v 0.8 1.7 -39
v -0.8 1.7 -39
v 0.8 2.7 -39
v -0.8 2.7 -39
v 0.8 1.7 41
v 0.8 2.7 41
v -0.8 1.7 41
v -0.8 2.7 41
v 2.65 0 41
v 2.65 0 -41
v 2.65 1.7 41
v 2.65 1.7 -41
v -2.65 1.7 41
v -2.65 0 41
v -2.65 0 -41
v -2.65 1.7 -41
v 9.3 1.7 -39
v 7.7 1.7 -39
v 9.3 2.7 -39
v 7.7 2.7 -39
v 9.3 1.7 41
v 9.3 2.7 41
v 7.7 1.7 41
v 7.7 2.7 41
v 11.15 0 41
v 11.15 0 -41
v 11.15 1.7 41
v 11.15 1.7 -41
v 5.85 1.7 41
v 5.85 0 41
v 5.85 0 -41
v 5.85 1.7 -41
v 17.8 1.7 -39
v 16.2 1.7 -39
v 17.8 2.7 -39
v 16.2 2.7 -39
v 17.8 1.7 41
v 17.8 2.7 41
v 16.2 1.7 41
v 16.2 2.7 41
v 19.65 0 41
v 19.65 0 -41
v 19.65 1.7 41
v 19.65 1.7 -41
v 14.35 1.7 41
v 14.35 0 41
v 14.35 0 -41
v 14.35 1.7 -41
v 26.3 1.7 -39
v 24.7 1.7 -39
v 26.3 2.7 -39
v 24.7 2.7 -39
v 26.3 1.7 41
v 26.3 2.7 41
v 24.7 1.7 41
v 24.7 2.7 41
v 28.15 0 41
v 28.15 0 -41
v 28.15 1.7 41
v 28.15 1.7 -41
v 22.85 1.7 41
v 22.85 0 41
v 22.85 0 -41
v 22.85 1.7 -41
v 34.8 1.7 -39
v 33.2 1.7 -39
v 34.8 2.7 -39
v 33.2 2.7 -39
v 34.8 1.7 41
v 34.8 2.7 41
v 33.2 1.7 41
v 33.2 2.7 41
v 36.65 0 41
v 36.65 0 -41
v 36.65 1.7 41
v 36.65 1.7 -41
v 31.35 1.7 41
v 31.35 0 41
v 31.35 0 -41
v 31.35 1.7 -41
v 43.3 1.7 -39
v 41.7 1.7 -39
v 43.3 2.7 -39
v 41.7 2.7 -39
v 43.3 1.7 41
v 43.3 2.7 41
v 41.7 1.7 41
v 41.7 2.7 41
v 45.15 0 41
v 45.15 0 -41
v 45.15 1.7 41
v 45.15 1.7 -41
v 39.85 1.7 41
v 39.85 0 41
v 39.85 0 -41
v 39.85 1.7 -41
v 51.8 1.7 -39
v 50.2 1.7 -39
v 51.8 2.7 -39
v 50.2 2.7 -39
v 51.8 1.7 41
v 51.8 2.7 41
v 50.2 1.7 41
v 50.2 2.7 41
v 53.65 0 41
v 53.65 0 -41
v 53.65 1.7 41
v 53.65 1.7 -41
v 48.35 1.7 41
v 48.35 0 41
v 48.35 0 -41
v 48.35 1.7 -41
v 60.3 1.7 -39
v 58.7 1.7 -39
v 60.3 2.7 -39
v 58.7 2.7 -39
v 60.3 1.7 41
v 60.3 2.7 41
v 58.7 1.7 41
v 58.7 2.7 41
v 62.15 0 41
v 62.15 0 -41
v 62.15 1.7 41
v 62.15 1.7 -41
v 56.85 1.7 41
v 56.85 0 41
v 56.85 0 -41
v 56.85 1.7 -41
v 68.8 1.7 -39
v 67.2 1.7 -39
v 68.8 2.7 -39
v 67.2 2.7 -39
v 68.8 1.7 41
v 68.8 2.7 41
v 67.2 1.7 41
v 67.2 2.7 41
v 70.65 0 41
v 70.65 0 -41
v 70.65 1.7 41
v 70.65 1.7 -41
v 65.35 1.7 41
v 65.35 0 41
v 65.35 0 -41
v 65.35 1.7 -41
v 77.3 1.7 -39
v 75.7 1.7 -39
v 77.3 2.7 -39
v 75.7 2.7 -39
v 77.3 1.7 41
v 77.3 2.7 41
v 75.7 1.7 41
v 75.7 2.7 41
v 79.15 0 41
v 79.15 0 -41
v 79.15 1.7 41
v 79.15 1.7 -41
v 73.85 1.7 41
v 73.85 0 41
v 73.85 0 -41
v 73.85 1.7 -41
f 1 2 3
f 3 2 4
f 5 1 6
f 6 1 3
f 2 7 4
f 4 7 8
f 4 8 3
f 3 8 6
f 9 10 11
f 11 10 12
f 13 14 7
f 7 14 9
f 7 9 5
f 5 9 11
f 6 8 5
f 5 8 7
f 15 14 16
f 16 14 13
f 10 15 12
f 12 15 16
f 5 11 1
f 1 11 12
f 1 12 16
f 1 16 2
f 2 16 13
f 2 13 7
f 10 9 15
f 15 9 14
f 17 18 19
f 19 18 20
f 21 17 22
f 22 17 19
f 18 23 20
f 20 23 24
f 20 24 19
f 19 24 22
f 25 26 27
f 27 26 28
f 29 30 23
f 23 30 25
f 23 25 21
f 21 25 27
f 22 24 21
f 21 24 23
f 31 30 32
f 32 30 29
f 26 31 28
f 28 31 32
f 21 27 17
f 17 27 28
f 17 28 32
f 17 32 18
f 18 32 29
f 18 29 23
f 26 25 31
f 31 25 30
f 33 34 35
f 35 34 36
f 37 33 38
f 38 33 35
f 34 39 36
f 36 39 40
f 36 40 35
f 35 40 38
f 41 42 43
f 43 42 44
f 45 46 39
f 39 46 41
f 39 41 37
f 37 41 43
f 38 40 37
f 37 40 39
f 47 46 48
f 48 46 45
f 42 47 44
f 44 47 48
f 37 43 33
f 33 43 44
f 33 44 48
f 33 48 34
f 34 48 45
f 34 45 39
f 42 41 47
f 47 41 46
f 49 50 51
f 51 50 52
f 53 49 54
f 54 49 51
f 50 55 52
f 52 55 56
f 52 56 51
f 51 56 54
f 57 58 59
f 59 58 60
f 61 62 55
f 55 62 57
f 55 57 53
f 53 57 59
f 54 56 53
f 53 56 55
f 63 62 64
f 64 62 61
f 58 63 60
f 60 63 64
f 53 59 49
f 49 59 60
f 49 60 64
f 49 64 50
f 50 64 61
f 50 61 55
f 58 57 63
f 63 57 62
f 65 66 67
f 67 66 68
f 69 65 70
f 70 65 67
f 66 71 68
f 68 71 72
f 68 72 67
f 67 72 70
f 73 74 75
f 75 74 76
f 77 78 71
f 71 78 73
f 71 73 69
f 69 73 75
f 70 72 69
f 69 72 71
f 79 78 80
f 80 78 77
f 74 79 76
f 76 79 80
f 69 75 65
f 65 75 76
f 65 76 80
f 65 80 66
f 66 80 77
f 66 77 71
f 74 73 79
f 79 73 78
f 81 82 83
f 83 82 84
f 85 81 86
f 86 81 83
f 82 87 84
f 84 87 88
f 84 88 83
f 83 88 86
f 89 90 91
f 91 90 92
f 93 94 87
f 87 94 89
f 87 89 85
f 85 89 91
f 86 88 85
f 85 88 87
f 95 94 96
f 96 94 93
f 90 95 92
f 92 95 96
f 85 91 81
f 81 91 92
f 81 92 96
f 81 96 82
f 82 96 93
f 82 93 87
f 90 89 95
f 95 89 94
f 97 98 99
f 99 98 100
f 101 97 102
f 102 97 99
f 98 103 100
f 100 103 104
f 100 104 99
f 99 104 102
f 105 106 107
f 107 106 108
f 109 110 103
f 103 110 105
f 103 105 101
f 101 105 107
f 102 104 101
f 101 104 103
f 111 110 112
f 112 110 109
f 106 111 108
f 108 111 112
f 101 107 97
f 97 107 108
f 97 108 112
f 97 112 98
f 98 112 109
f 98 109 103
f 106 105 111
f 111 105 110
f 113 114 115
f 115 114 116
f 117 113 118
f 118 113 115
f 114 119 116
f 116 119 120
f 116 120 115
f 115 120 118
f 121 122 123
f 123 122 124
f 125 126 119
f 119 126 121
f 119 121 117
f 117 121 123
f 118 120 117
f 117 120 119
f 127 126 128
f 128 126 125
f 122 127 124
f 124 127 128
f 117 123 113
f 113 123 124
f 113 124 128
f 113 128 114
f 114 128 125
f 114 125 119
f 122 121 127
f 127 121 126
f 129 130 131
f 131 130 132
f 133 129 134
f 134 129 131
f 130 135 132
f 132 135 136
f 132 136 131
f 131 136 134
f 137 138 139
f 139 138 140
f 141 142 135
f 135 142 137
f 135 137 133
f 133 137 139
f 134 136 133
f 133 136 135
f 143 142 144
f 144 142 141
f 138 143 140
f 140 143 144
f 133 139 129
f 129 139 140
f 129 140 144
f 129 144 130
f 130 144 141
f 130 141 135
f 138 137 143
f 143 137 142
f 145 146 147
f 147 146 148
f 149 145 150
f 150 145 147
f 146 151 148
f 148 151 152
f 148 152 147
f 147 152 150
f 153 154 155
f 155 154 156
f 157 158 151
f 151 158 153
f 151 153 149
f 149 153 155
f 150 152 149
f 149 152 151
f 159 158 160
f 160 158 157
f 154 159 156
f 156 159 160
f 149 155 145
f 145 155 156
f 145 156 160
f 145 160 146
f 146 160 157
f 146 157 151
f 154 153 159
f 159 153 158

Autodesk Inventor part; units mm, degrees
ref_plane "YZ Plane" through (0, 0, 0) normal (1, 0, 0) x (0, 1, 0)
ref_plane "XZ Plane" through (0, 0, 0) normal (0, 1, 0) x (-1, 0, 0)
ref_plane "XY Plane" through (0, 0, 0) normal (0, 0, 1) x (1, 0, 0)
sketch "Sketch1" plane through (0, 0, 0) normal (0, 1, 0) x (-1, 0, 0)
  line L0 (2.65, -41) -> (-2.65, -41)
  line L1 (-2.65, -41) -> (-2.65, 41)
  line L2 (-2.65, 41) -> (2.65, 41)
  line L3 (2.65, 41) -> (2.65, -41)
  line L4 (2.65, -41) -> (-2.65, 41) construction
  line L5 (-2.65, -41) -> (2.65, 41) construction
  line L6 (-1.2752, 41) -> (1.1507, 41)
  line L7 (1.1507, 41) -> (1.1507, 41)
  line L8 (1.1507, 41) -> (-1.2752, 41)
  line L9 (-1.2752, 41) -> (-1.2752, 41)
  point P0 (0, 0)
  dimension "d0" = 5.3
  dimension "d1" = 82
extrude "Extrusion1" add sketch "Sketch1" along normal blind 1.7
sketch "Sketch2" plane through (0, 1.7, 0) normal (0, 1, 0) x (1, 0, 0)
  line L0 (-2.65, -41) -> (2.65, -41) projected
  line L1 (0.8, -41) -> (-0.8, -41)
  line L2 (-0.8, -41) -> (-0.8, 39)
  line L3 (-0.8, 39) -> (0.8, 39)
  line L4 (0.8, 39) -> (0.8, -41)
  line L5 (2.65, -41) -> (2.65, 41) projected
  line L6 (-2.65, 41) -> (-2.65, -41) projected
  point P0 (0, 0)
  dimension "d4" = 80
  dimension "d5" = 1.6
  dimension "d6" = 5.3
  dimension "d7" = 1.85
extrude "Extrusion2" add sketch "Sketch2" along normal blind 1
pattern_linear "Rectangular Pattern1" count 10 spacing 8.5 along (1, 0, 0) of "Extrusion1", "Extrusion2"
equation "\"d7\" = 0.5 * d6 - 0.5 * d5"
equation "\"base_add\" = 1.2"
properties part number "structure2"
